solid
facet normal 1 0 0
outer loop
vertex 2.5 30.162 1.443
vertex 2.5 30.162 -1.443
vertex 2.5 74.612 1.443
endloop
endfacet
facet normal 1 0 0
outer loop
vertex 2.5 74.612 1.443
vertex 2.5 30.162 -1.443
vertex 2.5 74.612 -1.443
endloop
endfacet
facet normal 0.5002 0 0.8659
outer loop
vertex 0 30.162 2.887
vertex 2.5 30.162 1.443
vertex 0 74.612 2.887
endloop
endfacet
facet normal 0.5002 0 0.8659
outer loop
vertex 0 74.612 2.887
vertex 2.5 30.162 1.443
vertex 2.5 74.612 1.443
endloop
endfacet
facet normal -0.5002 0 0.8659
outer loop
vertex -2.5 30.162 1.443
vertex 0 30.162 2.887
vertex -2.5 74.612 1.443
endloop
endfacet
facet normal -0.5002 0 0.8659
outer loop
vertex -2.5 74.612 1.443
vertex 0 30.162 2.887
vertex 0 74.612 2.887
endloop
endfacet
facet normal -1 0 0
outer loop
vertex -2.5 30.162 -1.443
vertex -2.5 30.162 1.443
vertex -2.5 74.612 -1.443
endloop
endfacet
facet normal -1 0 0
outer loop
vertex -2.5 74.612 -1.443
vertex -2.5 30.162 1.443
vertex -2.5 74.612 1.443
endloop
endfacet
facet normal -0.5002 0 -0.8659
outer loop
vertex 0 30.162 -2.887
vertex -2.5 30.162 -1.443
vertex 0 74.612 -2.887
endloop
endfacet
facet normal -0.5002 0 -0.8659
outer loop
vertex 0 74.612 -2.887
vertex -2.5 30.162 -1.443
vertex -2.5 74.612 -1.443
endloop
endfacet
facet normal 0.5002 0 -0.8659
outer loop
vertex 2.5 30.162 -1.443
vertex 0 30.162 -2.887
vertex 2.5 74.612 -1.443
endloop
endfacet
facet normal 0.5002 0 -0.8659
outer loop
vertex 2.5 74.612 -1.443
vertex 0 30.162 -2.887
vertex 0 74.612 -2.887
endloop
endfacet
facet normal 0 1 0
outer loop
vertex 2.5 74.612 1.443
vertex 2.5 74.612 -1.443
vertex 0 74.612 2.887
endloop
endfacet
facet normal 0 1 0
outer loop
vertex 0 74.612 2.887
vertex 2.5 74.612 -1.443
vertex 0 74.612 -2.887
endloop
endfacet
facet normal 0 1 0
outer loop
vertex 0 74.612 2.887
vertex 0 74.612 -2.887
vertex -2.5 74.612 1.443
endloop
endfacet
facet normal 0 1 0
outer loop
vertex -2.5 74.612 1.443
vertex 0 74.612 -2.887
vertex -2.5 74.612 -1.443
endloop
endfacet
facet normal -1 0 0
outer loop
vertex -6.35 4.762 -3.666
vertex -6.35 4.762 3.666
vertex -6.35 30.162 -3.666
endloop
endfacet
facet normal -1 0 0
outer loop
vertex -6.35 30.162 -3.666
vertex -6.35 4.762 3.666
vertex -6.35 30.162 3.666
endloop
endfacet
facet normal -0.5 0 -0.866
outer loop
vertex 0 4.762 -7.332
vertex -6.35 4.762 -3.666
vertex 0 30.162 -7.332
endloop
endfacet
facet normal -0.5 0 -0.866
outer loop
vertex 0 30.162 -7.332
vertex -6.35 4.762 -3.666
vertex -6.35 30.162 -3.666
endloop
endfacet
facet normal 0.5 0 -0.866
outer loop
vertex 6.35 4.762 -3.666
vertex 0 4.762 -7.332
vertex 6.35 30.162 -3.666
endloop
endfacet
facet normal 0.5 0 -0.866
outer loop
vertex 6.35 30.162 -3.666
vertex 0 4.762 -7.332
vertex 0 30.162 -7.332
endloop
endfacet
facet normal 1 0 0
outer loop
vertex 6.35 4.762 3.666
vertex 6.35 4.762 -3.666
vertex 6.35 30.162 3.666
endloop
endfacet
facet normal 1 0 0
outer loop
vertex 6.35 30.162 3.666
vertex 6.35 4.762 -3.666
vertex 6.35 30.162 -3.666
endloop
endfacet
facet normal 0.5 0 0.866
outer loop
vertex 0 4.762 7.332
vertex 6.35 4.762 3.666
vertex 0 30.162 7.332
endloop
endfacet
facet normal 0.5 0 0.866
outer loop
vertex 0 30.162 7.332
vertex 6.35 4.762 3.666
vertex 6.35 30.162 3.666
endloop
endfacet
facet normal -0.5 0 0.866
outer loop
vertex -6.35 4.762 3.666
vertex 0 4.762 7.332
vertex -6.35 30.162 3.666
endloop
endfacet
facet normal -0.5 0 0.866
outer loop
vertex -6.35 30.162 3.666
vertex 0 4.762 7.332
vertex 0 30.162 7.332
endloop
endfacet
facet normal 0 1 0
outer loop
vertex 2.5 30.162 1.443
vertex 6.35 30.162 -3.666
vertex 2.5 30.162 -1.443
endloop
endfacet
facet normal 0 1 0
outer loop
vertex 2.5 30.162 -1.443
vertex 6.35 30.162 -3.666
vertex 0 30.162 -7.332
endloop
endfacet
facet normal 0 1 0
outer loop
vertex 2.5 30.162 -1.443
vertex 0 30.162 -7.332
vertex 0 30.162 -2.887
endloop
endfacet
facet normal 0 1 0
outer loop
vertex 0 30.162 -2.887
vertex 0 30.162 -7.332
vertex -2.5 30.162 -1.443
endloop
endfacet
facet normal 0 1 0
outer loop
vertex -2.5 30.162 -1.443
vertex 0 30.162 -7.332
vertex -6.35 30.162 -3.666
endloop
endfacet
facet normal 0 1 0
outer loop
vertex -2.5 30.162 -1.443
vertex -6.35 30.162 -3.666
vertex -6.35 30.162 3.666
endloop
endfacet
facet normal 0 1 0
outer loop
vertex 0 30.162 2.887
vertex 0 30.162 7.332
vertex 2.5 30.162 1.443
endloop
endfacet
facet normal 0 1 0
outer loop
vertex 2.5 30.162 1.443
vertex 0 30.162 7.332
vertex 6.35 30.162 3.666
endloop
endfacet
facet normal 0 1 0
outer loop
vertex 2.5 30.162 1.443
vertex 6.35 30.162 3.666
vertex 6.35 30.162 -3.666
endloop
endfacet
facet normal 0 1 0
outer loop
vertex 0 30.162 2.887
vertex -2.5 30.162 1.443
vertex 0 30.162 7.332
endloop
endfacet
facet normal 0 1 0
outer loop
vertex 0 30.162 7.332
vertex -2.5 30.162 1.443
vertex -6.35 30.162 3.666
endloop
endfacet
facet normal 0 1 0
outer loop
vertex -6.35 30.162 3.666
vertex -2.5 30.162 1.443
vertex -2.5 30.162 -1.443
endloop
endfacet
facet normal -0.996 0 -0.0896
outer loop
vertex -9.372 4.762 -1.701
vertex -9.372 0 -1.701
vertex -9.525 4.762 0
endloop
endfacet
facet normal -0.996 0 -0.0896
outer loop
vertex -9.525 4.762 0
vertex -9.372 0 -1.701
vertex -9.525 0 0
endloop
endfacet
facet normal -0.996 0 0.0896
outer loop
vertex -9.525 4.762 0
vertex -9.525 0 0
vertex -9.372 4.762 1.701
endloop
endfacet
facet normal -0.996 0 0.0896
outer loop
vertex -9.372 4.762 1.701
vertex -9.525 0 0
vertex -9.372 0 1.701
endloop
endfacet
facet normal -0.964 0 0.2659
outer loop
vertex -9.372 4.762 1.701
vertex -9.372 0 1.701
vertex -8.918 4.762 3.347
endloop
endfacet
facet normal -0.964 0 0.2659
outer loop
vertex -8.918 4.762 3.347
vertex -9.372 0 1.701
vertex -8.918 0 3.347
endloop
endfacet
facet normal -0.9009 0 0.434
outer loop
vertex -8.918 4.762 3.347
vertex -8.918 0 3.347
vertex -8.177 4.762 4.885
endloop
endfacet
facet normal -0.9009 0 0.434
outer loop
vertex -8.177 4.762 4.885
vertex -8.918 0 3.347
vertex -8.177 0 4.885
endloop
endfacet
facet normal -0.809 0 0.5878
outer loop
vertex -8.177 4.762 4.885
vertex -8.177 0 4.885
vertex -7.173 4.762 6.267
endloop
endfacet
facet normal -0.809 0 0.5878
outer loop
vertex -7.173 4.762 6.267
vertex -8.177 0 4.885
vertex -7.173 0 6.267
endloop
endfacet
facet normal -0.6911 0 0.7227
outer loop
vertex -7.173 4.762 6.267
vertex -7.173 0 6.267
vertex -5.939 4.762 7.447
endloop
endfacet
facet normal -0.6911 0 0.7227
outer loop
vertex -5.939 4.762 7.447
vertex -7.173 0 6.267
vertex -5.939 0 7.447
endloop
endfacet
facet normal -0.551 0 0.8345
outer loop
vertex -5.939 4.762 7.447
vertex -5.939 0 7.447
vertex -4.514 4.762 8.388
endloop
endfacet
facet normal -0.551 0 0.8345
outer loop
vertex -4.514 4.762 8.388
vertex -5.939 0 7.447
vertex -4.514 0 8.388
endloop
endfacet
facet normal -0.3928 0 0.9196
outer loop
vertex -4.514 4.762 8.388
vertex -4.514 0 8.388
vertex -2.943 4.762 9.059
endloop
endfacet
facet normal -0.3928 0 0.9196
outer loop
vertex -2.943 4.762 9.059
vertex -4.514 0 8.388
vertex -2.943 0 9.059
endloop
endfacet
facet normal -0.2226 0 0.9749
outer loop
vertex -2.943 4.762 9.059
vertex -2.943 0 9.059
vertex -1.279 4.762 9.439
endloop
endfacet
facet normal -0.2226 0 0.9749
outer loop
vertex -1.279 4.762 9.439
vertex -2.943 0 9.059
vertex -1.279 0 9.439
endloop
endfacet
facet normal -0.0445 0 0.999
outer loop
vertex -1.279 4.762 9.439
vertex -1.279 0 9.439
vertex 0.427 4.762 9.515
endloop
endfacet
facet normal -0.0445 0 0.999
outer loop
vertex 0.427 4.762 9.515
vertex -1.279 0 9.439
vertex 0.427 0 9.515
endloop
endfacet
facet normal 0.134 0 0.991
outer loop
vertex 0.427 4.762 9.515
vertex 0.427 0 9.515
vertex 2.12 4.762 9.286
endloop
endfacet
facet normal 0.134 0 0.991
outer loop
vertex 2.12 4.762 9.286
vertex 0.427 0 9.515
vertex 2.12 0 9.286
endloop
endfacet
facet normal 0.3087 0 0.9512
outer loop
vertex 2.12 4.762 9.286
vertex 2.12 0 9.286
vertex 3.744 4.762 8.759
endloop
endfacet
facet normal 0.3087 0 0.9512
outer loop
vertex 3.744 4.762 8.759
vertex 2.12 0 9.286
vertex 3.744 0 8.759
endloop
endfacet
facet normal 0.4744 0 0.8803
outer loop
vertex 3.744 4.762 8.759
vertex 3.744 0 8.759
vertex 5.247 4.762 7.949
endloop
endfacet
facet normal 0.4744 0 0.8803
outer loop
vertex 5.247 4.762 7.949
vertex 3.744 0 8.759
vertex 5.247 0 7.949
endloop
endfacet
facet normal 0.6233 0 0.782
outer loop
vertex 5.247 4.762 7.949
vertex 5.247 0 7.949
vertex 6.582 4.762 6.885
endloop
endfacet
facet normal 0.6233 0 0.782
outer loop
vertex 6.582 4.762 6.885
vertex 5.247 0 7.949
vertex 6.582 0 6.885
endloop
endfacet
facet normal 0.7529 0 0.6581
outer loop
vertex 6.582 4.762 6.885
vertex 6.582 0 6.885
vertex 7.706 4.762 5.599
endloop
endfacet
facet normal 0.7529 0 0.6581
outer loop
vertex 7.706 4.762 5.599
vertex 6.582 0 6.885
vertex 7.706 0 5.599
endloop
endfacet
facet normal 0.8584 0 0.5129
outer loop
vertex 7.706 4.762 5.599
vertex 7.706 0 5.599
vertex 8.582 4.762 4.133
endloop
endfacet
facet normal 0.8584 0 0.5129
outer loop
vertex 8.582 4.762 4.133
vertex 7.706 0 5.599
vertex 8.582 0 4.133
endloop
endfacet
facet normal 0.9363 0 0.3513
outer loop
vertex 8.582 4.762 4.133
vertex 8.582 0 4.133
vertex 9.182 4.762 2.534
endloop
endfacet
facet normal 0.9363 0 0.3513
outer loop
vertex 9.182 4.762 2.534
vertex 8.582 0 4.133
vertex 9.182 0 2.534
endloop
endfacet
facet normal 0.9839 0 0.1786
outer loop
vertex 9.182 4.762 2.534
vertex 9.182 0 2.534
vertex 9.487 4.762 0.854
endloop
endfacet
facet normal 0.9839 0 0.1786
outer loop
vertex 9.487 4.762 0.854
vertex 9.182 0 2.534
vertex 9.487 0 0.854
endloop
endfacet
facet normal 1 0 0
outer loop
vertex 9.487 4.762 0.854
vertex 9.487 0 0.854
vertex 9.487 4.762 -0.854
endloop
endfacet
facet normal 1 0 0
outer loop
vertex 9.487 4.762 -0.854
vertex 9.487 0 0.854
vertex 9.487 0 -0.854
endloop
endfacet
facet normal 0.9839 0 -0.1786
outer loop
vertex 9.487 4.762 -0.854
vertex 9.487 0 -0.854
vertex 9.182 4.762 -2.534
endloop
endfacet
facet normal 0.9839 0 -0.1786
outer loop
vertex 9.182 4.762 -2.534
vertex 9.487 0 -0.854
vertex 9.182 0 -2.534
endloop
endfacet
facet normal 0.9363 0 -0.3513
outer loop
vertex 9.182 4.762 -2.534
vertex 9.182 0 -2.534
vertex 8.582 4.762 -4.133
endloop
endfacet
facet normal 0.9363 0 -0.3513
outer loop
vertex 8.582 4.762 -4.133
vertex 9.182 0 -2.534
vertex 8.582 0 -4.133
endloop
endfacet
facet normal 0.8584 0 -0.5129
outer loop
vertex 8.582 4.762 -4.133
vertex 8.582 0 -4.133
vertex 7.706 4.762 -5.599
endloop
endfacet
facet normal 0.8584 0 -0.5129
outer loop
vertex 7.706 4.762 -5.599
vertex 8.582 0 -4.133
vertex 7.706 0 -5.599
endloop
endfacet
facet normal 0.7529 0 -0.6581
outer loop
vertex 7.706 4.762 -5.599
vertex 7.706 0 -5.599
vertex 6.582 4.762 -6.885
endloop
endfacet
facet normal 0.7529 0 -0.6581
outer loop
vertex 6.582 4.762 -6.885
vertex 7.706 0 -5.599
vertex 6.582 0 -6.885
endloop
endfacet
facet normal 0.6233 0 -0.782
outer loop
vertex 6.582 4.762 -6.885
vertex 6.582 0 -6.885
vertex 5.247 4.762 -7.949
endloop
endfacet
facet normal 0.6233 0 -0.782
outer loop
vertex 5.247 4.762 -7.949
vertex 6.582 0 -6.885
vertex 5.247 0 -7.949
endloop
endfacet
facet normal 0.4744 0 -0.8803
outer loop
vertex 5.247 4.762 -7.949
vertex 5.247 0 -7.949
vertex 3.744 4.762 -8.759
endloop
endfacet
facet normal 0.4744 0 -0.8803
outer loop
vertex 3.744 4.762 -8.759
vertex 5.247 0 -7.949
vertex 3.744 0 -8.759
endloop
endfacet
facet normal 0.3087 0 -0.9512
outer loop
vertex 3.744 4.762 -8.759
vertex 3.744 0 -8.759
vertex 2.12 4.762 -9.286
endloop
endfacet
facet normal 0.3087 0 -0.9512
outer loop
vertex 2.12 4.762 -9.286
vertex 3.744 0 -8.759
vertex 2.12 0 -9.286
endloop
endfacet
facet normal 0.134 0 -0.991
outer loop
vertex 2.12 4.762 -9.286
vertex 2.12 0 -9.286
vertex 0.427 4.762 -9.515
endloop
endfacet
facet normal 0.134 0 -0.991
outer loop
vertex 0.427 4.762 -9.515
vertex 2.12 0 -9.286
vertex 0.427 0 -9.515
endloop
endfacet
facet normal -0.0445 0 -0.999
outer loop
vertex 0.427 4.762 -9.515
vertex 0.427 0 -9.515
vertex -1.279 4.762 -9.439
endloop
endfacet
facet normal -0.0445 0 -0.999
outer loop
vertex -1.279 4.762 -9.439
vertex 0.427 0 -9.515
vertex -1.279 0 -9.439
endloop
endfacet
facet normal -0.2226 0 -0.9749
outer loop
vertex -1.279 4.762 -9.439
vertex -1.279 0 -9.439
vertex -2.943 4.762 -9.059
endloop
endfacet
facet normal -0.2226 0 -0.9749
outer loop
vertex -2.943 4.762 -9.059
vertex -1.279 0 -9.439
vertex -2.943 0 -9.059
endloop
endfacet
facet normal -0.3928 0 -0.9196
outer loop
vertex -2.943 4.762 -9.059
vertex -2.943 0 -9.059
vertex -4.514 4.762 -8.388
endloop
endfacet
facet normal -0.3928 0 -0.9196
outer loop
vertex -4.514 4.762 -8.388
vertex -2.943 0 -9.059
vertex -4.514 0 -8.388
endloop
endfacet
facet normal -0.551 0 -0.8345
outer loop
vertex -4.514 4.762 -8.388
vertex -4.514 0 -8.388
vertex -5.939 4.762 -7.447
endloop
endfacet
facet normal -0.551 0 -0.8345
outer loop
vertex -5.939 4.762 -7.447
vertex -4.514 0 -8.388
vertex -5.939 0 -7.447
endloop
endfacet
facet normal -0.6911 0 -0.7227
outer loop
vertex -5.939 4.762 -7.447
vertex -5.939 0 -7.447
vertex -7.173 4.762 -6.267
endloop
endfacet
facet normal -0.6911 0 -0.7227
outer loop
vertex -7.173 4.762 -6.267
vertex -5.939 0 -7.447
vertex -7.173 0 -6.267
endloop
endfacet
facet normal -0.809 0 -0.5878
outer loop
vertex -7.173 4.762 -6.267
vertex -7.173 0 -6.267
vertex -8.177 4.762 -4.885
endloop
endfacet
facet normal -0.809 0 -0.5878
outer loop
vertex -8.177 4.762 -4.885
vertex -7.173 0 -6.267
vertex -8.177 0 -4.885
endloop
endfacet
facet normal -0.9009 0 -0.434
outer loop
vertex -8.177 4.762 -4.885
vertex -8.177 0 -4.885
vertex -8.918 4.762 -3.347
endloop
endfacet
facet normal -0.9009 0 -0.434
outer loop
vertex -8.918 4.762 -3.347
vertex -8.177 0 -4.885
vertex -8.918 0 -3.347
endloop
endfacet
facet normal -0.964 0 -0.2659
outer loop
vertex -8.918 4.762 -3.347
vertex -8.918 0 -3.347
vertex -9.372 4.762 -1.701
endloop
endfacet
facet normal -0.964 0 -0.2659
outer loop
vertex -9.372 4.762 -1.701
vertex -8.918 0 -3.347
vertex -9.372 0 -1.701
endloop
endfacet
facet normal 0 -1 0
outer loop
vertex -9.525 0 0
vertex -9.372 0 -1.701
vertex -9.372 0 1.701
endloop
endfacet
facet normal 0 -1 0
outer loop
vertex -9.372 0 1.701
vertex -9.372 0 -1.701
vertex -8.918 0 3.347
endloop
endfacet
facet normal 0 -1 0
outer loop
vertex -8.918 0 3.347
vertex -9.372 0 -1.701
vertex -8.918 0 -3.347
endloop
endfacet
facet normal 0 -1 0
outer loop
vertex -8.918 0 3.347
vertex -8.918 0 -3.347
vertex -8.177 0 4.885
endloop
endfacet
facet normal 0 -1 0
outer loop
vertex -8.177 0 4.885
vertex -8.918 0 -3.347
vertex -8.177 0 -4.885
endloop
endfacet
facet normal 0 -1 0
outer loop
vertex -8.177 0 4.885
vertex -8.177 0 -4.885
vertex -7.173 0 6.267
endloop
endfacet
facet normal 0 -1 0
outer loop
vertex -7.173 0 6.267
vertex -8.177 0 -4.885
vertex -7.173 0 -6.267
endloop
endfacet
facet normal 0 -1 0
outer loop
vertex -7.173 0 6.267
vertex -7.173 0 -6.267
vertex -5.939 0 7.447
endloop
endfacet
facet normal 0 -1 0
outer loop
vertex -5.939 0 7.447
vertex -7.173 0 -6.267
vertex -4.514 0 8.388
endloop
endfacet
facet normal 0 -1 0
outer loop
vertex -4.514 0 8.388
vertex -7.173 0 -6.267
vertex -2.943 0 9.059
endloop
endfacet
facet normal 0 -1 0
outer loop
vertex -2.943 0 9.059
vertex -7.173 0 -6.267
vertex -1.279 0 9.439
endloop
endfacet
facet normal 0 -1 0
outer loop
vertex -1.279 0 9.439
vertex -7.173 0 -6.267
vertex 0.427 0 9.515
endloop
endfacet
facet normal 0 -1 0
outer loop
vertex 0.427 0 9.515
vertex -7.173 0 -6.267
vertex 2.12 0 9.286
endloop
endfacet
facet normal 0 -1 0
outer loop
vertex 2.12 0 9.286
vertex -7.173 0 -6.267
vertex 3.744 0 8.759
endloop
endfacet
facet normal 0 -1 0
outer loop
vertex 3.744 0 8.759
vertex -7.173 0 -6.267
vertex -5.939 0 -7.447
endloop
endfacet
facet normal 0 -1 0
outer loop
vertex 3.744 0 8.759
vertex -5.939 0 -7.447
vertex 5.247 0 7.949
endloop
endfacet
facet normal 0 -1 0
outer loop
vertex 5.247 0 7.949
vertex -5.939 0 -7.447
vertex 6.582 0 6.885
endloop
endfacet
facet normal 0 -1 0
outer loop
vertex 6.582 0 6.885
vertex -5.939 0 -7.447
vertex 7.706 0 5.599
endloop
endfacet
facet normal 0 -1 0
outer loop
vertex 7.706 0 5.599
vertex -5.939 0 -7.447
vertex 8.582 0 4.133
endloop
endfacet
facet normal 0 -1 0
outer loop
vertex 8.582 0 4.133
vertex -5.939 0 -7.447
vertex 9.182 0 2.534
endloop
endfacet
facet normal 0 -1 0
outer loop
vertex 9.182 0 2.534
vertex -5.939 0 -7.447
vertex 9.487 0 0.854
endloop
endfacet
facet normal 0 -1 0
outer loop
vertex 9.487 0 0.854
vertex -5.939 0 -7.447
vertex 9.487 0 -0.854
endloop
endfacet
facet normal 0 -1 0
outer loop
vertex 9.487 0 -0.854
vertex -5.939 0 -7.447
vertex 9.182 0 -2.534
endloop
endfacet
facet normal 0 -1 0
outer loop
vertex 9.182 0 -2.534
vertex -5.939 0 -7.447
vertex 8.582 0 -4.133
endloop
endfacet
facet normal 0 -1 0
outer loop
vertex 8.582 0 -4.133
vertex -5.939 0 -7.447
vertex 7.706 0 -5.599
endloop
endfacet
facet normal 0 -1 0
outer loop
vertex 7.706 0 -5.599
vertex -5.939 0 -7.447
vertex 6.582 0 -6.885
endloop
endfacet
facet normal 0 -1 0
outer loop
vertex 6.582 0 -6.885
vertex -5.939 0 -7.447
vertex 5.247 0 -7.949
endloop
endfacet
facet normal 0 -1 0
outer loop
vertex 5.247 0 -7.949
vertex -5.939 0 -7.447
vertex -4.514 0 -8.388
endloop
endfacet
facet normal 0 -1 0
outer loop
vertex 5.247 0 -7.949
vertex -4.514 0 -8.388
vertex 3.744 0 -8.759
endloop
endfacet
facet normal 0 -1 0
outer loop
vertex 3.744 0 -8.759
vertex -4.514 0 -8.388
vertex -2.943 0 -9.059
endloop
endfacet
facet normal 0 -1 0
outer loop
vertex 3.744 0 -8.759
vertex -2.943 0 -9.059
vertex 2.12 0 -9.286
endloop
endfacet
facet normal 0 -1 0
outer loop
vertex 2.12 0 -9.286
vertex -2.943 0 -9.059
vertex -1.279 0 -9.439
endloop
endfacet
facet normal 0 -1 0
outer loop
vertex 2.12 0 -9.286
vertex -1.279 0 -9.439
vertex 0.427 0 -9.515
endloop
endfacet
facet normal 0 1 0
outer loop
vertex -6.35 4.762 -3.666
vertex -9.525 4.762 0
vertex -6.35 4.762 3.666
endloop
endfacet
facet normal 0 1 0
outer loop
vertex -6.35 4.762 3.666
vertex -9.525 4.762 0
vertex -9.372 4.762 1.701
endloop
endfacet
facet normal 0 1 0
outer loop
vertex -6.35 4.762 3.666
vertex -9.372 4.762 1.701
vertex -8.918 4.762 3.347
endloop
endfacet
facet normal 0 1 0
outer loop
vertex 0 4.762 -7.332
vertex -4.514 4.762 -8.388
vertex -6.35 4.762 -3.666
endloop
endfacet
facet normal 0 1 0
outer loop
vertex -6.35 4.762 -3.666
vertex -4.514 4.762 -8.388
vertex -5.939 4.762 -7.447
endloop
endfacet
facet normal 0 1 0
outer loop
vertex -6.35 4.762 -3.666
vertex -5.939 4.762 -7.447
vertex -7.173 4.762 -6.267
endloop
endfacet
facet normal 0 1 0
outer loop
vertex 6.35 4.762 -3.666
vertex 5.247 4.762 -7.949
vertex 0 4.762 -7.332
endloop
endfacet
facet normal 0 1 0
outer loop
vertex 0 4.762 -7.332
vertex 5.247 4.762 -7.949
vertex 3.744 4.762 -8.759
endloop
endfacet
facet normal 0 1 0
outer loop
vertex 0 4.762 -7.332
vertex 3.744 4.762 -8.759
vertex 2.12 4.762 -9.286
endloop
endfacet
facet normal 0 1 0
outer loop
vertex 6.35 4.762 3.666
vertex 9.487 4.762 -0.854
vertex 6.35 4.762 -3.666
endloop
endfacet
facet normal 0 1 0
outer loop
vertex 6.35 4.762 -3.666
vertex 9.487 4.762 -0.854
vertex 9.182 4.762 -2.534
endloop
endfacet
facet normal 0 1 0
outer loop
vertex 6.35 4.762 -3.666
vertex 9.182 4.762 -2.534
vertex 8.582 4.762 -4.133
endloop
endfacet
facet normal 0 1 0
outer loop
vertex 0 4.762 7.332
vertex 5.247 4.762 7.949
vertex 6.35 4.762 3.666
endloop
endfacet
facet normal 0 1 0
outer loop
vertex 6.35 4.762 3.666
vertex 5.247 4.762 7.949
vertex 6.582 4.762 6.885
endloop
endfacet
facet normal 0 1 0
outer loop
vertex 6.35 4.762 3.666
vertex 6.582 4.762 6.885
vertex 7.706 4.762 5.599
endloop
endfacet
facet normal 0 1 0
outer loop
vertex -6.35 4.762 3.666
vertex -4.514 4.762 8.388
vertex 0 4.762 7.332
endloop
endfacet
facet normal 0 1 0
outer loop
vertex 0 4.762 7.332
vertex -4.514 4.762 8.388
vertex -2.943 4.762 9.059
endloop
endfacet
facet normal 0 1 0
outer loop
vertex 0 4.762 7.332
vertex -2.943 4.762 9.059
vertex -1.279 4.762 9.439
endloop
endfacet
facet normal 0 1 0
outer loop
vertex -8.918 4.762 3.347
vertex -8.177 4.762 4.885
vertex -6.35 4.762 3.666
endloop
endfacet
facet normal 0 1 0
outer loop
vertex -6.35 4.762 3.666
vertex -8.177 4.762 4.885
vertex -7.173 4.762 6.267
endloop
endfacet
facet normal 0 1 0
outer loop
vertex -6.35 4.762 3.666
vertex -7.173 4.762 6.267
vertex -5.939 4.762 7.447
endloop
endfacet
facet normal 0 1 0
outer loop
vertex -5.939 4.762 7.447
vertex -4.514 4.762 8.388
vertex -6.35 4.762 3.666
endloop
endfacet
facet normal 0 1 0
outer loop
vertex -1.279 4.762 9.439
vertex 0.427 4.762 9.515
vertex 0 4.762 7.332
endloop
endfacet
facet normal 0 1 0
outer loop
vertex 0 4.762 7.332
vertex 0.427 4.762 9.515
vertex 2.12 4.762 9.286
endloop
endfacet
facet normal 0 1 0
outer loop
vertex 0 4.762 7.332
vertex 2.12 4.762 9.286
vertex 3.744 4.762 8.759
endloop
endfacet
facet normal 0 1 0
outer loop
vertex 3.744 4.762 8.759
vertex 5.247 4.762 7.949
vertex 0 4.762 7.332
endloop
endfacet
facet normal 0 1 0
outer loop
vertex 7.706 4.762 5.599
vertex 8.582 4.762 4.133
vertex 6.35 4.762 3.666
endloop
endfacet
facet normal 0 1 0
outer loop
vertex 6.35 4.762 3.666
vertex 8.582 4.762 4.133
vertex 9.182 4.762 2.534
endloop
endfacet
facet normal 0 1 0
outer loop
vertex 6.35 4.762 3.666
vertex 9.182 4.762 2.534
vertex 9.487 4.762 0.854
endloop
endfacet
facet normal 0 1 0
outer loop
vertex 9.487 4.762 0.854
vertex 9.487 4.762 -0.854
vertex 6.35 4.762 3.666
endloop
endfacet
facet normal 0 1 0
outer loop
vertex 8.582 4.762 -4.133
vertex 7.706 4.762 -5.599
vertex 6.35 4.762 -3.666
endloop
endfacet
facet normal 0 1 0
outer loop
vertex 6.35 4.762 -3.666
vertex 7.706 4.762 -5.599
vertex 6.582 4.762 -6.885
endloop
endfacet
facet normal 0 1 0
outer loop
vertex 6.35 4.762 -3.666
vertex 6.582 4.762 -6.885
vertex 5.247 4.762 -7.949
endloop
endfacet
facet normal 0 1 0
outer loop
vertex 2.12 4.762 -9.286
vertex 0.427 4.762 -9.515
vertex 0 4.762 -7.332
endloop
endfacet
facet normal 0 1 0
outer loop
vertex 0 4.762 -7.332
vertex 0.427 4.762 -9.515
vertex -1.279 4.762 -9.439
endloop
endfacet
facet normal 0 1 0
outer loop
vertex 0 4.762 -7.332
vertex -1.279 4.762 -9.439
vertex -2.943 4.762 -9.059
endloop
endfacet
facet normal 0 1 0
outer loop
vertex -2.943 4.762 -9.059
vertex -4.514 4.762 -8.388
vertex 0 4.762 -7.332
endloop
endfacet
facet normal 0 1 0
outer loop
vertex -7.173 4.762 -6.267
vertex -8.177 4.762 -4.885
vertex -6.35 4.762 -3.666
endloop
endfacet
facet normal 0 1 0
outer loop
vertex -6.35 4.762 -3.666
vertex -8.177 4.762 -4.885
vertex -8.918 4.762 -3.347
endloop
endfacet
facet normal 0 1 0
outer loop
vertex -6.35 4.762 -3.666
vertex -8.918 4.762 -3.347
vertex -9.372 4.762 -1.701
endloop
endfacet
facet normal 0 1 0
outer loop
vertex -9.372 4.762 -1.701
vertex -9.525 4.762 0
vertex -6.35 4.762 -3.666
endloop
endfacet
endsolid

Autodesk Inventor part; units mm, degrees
ref_plane "YZ Plane" through (0, 0, 0) normal (1, 0, 0) x (0, 1, 0)
ref_plane "XZ Plane" through (0, 0, 0) normal (0, 1, 0) x (-1, 0, 0)
ref_plane "XY Plane" through (0, 0, 0) normal (0, 0, 1) x (1, 0, 0)
sketch "Sketch1" plane through (0, 0, 0) normal (0, 1, 0) x (-1, 0, 0)
  circle A0 centre (0, 0) radius 9.525
  dimension "d0" = 19.05
extrude "Extrusion1" add sketch "Sketch1" along normal blind 4.7625
sketch "Sketch2" plane through (0, 4.7625, 0) normal (0, 1, 0) x (1, 0, 0)
  line L0 (0, -7.3323) -> (-6.35, -3.6662)
  line L1 (-6.35, -3.6662) -> (-6.35, 3.6662)
  line L2 (-6.35, 3.6662) -> (0, 7.3323)
  line L3 (0, 7.3323) -> (6.35, 3.6662)
  line L4 (6.35, 3.6662) -> (6.35, -3.6662)
  line L5 (6.35, -3.6662) -> (0, -7.3323)
  line L6 (0, 0) -> (0, -9.525)
  circle A0 centre (0, 0) radius 9.525 projected
  dimension "d3" = 12.7
extrude "Extrusion2" add sketch "Sketch2" along normal blind 25.4 contours L0 L1 L2 L3 L4 L5
sketch "Sketch3" plane through (0, 30.1625, 0) normal (0, 1, 0) x (1, 0, 0)
  line L0 (0, 2.8868) -> (2.5, 1.4434)
  line L1 (2.5, 1.4434) -> (2.5, -1.4434)
  line L2 (2.5, -1.4434) -> (0, -2.8868)
  line L3 (0, -2.8868) -> (-2.5, -1.4434)
  line L4 (-2.5, -1.4434) -> (-2.5, 1.4434)
  line L5 (-2.5, 1.4434) -> (0, 2.8868)
  line L6 (-6.35, -3.6662) -> (0, -7.3323) projected
  line L7 (0, 0) -> (0, -7.3323)
  dimension "d6" = 5
extrude "Extrusion3" add sketch "Sketch3" along normal blind 44.45
properties part number "0.5in hex to 5mm hex"
